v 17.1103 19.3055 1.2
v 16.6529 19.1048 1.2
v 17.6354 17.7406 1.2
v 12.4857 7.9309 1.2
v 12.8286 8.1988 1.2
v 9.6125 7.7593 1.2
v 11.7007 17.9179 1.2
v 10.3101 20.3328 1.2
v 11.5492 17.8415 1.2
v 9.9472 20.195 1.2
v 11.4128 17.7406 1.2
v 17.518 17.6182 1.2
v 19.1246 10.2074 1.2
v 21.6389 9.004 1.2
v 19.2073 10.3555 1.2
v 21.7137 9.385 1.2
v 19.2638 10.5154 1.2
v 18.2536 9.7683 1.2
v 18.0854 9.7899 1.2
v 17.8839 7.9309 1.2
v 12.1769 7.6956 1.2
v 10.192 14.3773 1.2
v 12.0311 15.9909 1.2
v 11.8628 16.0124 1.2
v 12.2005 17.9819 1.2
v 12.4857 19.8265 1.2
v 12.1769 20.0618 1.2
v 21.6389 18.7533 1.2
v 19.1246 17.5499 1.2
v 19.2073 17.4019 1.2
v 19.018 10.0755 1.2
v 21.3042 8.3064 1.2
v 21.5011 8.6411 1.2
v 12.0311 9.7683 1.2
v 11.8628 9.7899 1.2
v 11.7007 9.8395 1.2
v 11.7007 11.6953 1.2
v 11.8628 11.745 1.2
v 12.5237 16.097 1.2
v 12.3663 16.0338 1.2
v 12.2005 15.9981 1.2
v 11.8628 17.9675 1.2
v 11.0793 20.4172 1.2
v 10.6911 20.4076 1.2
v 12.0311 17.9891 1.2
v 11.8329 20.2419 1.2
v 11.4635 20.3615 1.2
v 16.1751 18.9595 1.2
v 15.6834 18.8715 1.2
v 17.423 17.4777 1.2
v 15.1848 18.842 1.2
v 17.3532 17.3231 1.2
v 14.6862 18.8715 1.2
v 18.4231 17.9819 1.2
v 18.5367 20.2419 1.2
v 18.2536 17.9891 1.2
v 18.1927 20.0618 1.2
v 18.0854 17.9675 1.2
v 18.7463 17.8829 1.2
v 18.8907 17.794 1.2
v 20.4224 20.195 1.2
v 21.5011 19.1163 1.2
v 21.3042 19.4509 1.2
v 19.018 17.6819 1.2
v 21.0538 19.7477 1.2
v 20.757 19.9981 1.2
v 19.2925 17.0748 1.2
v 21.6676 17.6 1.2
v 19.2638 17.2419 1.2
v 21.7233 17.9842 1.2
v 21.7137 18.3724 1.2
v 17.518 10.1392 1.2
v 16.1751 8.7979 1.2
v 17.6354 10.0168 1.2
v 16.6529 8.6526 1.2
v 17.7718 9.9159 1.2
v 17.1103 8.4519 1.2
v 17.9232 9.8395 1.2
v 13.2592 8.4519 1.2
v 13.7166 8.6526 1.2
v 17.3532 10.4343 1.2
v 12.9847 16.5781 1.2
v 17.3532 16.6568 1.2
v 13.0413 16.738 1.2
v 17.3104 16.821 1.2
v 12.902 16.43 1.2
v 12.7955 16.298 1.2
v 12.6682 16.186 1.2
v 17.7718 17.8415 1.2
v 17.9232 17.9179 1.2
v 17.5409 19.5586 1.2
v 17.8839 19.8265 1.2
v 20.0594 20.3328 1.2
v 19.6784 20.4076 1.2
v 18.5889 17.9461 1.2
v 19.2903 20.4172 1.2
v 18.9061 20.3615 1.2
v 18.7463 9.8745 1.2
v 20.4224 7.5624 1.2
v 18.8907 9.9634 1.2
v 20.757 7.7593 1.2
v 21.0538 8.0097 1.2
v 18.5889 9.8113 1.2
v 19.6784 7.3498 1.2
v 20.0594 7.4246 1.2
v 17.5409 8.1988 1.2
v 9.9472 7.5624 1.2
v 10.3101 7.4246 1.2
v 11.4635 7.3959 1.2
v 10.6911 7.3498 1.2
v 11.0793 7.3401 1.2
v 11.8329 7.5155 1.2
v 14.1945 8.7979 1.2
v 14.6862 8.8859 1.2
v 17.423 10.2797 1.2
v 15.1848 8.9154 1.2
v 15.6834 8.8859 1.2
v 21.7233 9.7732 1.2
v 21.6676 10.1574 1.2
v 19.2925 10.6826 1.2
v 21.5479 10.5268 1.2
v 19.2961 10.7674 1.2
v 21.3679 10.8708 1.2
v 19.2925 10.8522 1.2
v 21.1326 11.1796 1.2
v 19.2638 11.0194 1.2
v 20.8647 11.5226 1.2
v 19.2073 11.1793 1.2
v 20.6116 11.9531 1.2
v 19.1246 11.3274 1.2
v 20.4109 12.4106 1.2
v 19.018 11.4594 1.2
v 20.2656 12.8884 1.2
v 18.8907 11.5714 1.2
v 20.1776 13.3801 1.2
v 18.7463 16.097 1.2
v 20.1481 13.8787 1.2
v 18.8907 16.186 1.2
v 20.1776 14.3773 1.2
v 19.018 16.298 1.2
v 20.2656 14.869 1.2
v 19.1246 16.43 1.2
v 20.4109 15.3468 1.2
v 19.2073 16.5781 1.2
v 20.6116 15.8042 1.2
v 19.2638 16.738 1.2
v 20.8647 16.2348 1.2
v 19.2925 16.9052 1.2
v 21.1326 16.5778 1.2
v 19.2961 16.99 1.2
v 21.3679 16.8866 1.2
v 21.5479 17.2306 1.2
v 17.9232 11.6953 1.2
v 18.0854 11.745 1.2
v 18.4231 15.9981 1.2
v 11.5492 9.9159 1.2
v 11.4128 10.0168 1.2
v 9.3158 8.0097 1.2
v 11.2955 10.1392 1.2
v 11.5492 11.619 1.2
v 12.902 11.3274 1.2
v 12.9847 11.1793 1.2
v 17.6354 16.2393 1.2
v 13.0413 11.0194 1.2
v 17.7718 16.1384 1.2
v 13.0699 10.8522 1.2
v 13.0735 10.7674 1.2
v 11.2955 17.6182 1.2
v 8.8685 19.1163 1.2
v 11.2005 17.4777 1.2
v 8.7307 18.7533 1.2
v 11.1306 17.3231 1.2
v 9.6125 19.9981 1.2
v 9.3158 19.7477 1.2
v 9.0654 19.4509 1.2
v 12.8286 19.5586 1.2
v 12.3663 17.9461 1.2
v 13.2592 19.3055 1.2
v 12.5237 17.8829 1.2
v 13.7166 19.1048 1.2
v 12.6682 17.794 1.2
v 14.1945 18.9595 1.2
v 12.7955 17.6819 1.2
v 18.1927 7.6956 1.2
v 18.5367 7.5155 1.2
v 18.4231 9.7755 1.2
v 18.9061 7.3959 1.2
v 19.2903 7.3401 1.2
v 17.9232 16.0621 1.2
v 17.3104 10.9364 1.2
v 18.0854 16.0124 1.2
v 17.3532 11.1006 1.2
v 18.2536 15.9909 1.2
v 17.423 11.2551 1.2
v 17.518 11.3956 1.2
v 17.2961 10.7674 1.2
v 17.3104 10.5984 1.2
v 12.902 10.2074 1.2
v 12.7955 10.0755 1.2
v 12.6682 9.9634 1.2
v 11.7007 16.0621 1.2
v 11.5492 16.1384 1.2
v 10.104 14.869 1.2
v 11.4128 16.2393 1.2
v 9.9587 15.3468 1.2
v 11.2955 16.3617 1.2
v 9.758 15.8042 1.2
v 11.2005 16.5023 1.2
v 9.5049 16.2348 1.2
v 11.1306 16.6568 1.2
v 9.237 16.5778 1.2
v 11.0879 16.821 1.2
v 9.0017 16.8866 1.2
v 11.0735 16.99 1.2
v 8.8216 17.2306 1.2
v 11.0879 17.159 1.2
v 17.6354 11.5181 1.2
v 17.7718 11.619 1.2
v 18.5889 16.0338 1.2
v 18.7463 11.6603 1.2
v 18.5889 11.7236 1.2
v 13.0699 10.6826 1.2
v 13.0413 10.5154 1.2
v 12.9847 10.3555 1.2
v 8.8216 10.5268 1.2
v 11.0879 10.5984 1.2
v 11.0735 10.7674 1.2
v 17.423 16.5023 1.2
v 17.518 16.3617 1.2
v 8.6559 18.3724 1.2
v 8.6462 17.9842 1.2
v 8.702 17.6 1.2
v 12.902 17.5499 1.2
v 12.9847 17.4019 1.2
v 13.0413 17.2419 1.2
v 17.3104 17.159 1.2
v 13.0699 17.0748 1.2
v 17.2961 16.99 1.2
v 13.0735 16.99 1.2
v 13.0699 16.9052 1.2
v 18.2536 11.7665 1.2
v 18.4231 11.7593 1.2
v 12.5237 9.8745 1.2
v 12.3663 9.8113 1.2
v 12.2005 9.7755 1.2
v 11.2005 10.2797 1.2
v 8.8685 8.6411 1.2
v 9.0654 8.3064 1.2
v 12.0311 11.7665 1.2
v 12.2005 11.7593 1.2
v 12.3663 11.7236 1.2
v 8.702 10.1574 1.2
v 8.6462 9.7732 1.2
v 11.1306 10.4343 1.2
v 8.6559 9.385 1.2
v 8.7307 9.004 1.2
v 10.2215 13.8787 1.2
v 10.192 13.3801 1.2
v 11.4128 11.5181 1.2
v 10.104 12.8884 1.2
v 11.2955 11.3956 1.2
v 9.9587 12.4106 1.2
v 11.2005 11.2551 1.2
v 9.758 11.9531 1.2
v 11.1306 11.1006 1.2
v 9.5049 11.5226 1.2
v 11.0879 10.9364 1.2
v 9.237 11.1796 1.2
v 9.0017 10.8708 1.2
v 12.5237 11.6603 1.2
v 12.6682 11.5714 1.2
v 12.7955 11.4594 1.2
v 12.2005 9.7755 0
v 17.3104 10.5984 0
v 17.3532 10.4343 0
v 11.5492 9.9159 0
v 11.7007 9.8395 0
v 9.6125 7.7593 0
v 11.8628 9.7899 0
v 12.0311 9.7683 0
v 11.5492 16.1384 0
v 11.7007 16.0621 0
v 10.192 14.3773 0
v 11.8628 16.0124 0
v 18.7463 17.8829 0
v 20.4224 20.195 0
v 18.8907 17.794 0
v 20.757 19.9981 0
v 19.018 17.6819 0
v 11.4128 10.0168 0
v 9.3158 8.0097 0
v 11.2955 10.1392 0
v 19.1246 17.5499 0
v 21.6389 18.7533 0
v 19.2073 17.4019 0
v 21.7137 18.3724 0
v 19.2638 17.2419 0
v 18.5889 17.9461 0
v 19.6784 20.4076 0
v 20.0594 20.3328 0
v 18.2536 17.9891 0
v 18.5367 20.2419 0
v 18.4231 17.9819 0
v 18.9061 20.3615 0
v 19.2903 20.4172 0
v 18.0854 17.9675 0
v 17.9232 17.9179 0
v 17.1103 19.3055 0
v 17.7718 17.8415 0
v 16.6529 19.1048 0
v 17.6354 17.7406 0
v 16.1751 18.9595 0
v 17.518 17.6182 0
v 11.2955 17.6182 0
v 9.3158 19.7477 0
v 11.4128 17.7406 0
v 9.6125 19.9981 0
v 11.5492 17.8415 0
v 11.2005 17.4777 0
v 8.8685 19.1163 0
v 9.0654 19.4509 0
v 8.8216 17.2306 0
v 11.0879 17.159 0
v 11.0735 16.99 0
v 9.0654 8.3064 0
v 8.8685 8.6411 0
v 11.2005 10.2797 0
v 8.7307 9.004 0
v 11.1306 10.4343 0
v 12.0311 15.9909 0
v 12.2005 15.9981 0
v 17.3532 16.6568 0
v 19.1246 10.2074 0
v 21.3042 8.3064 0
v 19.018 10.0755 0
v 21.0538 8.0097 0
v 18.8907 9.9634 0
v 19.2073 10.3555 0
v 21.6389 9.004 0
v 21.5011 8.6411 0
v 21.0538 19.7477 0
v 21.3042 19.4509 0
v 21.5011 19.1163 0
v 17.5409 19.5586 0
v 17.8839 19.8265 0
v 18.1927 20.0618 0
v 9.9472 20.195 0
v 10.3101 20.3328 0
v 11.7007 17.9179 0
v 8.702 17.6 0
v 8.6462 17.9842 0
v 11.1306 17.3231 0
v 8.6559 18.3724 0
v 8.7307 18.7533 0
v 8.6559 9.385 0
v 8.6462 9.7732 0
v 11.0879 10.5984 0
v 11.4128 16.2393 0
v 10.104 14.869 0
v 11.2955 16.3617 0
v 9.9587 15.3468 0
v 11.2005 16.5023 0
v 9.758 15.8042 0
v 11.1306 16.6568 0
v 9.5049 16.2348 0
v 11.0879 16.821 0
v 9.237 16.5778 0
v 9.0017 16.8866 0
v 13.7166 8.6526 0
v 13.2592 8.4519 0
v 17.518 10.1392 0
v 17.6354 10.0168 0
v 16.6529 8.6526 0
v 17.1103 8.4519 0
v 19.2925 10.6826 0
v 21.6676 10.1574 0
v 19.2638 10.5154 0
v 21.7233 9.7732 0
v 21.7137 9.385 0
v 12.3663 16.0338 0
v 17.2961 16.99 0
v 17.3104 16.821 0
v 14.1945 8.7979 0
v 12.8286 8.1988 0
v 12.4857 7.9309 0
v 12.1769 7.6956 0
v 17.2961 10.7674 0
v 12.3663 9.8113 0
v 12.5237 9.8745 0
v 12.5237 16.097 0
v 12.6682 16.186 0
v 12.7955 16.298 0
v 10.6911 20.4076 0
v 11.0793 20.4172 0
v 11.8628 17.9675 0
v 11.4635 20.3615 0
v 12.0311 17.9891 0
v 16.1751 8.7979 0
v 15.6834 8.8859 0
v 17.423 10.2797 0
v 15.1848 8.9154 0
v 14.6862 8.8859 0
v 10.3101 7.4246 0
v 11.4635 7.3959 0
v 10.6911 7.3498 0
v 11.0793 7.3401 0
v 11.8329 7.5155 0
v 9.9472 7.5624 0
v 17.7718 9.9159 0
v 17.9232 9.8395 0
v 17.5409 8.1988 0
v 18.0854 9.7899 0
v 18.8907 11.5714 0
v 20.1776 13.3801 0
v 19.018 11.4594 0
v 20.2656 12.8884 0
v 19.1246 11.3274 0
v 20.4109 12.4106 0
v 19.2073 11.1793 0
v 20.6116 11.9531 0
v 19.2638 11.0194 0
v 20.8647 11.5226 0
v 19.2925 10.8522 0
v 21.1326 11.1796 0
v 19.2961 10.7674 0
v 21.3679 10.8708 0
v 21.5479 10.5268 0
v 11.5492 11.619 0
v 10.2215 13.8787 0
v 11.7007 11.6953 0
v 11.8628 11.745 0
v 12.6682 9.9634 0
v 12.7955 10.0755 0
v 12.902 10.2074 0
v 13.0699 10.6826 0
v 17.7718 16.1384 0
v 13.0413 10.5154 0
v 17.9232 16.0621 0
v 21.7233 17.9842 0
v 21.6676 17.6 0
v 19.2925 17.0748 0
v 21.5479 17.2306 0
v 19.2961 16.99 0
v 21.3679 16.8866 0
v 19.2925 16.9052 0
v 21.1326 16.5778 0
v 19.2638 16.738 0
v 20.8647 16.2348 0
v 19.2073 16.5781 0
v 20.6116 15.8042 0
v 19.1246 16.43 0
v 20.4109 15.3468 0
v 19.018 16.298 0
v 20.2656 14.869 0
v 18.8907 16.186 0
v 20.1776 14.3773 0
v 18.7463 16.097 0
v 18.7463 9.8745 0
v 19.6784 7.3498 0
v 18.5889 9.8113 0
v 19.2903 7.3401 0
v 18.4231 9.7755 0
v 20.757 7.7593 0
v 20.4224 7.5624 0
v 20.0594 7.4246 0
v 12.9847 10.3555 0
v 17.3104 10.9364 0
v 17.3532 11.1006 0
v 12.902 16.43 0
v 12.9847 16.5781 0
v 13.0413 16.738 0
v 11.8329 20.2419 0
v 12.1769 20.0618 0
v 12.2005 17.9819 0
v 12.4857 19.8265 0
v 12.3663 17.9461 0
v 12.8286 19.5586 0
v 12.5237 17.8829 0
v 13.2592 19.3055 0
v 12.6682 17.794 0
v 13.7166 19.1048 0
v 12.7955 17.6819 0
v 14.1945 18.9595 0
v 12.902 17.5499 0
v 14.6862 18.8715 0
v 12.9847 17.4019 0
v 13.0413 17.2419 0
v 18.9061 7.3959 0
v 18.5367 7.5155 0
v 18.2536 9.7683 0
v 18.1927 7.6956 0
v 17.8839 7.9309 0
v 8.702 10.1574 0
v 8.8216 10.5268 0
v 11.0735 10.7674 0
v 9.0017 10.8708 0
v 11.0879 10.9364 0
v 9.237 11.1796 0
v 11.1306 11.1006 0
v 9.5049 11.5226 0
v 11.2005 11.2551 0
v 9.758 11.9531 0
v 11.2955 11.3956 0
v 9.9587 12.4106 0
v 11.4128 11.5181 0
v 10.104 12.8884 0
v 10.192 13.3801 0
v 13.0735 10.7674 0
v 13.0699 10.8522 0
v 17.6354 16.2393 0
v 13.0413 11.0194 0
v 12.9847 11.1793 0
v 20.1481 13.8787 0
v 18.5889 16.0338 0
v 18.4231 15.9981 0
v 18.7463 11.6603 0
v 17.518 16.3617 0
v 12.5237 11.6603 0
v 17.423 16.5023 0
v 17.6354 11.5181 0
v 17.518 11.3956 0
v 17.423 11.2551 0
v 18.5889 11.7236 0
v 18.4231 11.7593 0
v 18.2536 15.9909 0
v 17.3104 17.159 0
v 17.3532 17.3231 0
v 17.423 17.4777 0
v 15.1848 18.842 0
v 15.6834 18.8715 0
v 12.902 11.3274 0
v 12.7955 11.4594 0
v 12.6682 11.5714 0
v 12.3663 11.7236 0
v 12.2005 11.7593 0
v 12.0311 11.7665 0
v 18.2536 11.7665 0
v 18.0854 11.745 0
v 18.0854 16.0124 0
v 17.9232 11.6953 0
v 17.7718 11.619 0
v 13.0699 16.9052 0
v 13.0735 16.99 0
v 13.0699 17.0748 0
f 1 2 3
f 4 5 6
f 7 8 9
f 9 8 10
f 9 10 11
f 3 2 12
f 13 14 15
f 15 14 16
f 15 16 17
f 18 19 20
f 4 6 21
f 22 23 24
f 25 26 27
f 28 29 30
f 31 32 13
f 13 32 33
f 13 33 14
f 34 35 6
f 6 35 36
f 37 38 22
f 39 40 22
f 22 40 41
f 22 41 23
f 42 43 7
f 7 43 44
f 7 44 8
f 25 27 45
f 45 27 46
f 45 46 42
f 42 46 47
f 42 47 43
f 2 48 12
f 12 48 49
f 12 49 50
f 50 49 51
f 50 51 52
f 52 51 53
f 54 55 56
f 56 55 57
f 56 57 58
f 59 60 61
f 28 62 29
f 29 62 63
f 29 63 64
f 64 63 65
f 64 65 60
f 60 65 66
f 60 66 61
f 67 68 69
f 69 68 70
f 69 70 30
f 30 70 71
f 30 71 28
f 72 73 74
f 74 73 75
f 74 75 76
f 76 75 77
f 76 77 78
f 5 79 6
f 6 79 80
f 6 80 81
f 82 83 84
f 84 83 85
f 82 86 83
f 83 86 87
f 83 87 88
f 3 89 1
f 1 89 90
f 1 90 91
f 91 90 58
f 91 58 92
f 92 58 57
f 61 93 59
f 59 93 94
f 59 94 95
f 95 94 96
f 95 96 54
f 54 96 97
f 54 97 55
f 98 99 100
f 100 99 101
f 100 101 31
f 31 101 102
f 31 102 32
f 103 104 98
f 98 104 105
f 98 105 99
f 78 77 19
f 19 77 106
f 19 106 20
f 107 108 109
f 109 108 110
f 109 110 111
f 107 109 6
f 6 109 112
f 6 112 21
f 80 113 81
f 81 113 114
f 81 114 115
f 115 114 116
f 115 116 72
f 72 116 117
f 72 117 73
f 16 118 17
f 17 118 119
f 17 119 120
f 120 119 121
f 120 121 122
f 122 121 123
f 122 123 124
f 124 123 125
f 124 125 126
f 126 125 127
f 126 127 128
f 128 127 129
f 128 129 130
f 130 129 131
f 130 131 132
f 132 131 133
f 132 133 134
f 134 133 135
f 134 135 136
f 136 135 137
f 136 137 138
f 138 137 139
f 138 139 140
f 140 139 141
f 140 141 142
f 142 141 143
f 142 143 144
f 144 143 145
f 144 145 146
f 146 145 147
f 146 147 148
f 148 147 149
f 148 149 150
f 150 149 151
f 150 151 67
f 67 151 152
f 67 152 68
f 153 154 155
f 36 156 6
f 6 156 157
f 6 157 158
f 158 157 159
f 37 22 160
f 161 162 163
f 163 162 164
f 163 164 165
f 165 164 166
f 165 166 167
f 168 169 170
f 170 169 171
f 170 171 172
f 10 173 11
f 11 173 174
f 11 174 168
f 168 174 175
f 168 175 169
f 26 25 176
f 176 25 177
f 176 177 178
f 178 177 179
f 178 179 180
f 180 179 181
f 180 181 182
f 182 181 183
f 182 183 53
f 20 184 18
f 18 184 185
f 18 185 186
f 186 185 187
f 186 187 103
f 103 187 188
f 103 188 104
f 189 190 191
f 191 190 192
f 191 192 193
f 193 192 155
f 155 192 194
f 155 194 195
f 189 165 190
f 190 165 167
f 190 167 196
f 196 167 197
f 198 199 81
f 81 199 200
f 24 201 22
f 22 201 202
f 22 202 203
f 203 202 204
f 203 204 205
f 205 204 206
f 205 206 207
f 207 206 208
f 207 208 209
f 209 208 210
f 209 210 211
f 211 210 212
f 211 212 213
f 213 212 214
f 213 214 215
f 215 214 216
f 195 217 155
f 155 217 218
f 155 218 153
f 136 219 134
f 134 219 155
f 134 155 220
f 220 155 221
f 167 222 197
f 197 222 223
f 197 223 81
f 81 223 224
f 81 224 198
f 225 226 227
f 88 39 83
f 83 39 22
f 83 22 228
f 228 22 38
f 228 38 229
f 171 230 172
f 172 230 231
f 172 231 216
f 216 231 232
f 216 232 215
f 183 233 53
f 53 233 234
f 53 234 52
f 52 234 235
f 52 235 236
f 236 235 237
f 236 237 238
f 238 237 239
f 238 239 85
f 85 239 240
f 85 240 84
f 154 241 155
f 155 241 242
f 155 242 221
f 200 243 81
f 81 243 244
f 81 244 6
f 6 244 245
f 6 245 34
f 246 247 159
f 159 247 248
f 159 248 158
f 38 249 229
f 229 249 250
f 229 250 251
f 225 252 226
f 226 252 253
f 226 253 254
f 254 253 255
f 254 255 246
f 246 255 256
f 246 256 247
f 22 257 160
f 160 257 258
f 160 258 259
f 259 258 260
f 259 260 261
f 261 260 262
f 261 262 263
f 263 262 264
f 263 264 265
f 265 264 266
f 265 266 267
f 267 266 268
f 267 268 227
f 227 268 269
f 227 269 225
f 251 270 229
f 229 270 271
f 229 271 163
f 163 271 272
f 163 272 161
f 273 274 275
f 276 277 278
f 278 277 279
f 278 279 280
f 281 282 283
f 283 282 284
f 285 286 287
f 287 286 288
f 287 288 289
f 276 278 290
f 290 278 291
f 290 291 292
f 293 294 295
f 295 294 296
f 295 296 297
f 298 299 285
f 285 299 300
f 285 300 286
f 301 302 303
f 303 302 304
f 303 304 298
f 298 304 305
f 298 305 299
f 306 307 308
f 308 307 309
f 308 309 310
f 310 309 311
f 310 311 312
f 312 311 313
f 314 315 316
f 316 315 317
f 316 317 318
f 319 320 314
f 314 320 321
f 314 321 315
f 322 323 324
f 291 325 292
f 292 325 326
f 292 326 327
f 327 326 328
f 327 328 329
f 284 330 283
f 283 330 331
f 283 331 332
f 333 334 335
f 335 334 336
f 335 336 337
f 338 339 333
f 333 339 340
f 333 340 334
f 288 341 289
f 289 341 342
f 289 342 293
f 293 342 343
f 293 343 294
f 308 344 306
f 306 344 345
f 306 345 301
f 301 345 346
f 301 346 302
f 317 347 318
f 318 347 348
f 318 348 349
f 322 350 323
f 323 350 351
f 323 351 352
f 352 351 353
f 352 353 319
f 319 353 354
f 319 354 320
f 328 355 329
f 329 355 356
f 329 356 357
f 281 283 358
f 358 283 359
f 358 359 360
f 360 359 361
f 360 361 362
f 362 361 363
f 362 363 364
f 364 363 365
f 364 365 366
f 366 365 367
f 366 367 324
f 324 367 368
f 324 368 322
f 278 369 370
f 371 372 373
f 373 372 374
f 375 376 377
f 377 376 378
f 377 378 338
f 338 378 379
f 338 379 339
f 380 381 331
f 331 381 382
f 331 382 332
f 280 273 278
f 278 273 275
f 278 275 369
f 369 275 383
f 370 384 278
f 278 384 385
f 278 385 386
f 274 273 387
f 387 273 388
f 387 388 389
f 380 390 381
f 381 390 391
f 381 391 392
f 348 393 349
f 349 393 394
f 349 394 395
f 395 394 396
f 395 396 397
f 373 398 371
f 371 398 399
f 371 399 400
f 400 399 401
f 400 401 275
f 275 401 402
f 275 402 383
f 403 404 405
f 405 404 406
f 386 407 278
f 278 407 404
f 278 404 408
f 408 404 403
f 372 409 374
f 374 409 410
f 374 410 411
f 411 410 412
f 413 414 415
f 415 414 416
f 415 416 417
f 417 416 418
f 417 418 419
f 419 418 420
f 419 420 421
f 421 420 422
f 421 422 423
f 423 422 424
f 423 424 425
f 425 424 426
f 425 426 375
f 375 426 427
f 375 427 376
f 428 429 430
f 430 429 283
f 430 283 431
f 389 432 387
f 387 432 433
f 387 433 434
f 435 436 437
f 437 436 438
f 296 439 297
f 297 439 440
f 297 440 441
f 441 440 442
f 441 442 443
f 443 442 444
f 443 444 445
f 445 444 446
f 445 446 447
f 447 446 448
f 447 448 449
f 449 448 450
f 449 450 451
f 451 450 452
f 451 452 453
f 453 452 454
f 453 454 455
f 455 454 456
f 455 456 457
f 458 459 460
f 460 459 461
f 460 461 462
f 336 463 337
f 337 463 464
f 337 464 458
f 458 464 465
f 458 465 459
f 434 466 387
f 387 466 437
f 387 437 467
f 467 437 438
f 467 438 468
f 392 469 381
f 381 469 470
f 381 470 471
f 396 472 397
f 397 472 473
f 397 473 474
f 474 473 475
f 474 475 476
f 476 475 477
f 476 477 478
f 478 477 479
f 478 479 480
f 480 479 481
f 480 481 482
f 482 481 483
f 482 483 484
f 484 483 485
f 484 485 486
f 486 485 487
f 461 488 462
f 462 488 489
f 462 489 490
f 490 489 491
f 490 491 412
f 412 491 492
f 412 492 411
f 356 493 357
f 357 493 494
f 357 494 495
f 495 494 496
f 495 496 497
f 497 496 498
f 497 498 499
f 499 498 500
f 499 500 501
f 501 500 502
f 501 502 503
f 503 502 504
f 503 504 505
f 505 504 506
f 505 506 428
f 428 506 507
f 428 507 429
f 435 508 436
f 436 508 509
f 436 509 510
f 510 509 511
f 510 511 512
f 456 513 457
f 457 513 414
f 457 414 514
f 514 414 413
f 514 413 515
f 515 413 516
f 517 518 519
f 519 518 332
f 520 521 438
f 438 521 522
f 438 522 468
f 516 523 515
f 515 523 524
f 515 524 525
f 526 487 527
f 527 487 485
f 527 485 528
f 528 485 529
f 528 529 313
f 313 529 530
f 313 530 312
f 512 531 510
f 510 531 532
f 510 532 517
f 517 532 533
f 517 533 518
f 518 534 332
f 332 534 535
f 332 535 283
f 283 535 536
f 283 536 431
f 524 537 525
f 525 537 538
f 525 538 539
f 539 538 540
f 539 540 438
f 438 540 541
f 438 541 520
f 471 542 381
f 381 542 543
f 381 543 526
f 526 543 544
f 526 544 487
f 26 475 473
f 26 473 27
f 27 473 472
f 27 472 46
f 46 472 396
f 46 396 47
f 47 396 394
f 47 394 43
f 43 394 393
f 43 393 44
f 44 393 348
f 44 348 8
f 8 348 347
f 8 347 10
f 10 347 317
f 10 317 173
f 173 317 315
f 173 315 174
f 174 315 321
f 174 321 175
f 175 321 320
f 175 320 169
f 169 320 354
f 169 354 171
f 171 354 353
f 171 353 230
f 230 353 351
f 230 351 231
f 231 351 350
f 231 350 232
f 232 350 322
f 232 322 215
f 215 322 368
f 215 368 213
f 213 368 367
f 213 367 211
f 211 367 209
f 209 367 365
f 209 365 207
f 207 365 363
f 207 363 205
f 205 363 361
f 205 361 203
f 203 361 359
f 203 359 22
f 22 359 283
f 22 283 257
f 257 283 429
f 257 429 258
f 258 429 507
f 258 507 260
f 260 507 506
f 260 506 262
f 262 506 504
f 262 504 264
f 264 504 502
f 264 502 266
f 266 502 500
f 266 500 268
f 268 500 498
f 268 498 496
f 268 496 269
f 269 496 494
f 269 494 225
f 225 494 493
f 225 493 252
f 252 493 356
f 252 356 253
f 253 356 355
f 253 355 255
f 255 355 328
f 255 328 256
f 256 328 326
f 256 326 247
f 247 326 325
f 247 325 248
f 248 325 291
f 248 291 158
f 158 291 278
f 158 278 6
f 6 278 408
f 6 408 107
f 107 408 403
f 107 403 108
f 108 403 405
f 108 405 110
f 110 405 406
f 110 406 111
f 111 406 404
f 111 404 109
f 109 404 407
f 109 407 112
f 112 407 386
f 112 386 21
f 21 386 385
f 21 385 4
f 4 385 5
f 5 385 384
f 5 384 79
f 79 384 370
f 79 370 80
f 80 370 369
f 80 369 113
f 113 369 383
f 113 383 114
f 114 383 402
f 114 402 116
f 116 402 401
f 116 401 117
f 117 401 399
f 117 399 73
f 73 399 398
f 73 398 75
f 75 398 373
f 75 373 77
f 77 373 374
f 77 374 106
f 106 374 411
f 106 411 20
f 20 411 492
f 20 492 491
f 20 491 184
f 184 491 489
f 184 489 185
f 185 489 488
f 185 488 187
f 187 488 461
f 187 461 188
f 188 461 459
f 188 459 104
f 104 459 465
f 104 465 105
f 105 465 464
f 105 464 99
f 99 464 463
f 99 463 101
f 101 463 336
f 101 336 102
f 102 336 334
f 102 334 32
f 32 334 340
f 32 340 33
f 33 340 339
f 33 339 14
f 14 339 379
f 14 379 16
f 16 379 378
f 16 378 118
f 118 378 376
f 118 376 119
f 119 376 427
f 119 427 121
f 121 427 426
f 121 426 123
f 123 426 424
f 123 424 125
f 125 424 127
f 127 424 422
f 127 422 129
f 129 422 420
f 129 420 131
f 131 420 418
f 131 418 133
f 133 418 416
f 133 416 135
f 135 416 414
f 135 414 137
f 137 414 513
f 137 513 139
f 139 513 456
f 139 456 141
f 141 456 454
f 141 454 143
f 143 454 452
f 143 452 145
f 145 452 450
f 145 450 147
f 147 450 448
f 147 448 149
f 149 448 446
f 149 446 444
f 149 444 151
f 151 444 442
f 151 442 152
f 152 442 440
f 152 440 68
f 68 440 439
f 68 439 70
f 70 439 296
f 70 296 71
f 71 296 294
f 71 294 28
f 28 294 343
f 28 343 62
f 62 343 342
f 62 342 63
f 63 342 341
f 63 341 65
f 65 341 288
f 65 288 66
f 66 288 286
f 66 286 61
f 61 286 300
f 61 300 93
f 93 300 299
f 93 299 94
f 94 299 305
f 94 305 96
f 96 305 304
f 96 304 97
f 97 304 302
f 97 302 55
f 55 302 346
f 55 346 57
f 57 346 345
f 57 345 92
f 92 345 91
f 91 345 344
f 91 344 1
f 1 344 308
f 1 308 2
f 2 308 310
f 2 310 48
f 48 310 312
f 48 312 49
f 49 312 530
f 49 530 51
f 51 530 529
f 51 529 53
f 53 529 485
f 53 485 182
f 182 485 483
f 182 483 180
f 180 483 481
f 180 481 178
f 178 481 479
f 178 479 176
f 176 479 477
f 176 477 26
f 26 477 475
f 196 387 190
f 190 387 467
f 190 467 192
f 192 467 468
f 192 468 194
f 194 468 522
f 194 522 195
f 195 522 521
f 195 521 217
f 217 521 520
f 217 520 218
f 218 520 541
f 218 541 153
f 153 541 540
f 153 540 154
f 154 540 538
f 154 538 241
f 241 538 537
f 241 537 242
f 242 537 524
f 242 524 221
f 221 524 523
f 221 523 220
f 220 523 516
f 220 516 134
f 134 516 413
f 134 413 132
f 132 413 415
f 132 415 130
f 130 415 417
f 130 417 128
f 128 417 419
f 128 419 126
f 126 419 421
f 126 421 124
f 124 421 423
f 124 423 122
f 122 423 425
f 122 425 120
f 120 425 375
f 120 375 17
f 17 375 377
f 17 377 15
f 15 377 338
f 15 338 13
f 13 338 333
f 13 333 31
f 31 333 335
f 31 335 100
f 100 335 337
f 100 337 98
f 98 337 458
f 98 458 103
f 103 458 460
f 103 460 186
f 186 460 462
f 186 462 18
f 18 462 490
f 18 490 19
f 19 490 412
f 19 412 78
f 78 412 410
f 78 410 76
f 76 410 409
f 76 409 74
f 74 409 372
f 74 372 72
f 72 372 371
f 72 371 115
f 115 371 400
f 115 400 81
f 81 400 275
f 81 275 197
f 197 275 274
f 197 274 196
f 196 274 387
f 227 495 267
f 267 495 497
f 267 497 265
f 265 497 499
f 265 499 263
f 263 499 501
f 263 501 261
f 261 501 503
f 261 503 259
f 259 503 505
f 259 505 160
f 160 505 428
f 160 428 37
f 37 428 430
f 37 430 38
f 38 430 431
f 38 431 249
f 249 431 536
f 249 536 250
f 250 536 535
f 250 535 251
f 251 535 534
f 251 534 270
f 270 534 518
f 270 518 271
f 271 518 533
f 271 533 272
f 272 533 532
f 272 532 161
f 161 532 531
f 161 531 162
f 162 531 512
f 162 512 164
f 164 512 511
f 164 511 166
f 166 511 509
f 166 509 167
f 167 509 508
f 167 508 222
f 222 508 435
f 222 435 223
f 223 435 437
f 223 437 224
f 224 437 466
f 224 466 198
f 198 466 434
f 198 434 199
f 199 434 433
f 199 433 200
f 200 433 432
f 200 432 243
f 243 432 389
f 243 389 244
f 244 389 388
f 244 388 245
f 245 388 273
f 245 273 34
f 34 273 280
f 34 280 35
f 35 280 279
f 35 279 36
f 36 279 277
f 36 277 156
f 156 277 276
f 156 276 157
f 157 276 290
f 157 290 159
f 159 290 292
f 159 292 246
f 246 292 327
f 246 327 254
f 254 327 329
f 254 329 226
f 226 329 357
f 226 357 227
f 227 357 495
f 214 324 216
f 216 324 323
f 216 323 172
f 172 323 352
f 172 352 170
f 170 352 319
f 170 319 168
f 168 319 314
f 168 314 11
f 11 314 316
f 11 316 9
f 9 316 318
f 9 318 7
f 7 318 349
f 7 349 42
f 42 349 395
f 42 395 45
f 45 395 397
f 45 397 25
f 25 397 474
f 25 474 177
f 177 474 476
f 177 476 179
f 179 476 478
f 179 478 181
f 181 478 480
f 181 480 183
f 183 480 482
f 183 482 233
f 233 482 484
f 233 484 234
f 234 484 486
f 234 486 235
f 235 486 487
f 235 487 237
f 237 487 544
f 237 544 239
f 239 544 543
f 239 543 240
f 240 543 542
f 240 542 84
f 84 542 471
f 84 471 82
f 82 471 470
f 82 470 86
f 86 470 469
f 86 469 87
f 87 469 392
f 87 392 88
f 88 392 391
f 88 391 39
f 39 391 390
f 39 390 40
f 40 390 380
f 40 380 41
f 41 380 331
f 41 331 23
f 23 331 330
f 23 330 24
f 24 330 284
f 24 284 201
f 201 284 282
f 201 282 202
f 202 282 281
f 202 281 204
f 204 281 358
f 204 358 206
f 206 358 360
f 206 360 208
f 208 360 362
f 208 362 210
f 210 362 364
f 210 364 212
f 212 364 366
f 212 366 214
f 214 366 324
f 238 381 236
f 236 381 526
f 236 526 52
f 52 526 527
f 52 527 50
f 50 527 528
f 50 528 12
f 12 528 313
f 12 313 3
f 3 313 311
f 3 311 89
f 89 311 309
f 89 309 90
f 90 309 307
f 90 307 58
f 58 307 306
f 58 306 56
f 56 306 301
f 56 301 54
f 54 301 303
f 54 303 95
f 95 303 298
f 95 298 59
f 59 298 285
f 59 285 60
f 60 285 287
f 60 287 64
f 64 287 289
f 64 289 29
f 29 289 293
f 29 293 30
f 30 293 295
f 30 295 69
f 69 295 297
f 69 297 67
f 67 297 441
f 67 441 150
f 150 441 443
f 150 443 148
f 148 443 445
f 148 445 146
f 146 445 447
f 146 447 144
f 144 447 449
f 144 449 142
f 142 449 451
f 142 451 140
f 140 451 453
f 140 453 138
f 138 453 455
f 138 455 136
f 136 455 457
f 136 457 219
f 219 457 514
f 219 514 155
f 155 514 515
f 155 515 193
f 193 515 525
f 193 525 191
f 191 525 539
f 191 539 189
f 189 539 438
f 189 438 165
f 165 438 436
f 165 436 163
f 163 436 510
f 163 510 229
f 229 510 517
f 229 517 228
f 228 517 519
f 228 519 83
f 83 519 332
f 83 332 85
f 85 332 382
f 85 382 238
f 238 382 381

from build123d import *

# Parameters (mm, degrees)
MODEL_R         = 1
EXTRUDE_1_DEPTH = 1.2


with BuildPart() as part:
    # Model → 凸台-拉伸1 (new body)
    with BuildSketch(Plane.XY):
        with BuildLine():
            ThreePointArc((12.485683382, 19.826470809), (12.652302696, 19.686300725), (12.828649886, 19.55858496))
            ThreePointArc((12.828649886, 19.55858496), (15.184787498, 18.84198425), (17.540925109, 19.55858496))
            ThreePointArc((17.540925109, 19.55858496), (17.7172723, 19.686300725), (17.883891613, 19.826470809))
            ThreePointArc((17.883891613, 19.826470809), (21.053773782, 19.747678625), (21.132565966, 16.577796457))
            ThreePointArc((21.132565966, 16.577796457), (20.992395882, 16.411177143), (20.864680117, 16.234829953))
            ThreePointArc((20.864680117, 16.234829953), (20.148079407, 13.878692341), (20.864680117, 11.522554729))
            ThreePointArc((20.864680117, 11.522554729), (20.992395882, 11.346207539), (21.132565966, 11.179588225))
            ThreePointArc((21.132565966, 11.179588225), (21.053773782, 8.009706057), (17.883891613, 7.930913873))
            ThreePointArc((17.883891613, 7.930913873), (17.7172723, 8.071083957), (17.540925109, 8.198799722))
            ThreePointArc((17.540925109, 8.198799722), (15.184787498, 8.915400432), (12.828649886, 8.198799722))
            ThreePointArc((12.828649886, 8.198799722), (12.652302696, 8.071083957), (12.485683382, 7.930913873))
            ThreePointArc((12.485683382, 7.930913873), (9.315801214, 8.009706057), (9.237009029, 11.179588225))
            ThreePointArc((9.237009029, 11.179588225), (9.377179113, 11.346207539), (9.504894878, 11.522554729))
            ThreePointArc((9.504894878, 11.522554729), (10.221495588, 13.878692341), (9.504894878, 16.234829953))
            ThreePointArc((9.504894878, 16.234829953), (9.377179113, 16.411177143), (9.237009029, 16.577796457))
            ThreePointArc((9.237009029, 16.577796457), (9.315801214, 19.747678625), (12.485683382, 19.826470809))
        make_face()
        with Locations((18.296057335, 16.989962178)):
            Circle(MODEL_R, mode=Mode.SUBTRACT)
        with Locations((12.07351766, 16.989962178)):
            Circle(MODEL_R, mode=Mode.SUBTRACT)
        with Locations((12.07351766, 10.767422504)):
            Circle(MODEL_R, mode=Mode.SUBTRACT)
        with Locations((18.296057335, 10.767422504)):
            Circle(MODEL_R, mode=Mode.SUBTRACT)
    extrude(amount=EXTRUDE_1_DEPTH)


solid = part.part
